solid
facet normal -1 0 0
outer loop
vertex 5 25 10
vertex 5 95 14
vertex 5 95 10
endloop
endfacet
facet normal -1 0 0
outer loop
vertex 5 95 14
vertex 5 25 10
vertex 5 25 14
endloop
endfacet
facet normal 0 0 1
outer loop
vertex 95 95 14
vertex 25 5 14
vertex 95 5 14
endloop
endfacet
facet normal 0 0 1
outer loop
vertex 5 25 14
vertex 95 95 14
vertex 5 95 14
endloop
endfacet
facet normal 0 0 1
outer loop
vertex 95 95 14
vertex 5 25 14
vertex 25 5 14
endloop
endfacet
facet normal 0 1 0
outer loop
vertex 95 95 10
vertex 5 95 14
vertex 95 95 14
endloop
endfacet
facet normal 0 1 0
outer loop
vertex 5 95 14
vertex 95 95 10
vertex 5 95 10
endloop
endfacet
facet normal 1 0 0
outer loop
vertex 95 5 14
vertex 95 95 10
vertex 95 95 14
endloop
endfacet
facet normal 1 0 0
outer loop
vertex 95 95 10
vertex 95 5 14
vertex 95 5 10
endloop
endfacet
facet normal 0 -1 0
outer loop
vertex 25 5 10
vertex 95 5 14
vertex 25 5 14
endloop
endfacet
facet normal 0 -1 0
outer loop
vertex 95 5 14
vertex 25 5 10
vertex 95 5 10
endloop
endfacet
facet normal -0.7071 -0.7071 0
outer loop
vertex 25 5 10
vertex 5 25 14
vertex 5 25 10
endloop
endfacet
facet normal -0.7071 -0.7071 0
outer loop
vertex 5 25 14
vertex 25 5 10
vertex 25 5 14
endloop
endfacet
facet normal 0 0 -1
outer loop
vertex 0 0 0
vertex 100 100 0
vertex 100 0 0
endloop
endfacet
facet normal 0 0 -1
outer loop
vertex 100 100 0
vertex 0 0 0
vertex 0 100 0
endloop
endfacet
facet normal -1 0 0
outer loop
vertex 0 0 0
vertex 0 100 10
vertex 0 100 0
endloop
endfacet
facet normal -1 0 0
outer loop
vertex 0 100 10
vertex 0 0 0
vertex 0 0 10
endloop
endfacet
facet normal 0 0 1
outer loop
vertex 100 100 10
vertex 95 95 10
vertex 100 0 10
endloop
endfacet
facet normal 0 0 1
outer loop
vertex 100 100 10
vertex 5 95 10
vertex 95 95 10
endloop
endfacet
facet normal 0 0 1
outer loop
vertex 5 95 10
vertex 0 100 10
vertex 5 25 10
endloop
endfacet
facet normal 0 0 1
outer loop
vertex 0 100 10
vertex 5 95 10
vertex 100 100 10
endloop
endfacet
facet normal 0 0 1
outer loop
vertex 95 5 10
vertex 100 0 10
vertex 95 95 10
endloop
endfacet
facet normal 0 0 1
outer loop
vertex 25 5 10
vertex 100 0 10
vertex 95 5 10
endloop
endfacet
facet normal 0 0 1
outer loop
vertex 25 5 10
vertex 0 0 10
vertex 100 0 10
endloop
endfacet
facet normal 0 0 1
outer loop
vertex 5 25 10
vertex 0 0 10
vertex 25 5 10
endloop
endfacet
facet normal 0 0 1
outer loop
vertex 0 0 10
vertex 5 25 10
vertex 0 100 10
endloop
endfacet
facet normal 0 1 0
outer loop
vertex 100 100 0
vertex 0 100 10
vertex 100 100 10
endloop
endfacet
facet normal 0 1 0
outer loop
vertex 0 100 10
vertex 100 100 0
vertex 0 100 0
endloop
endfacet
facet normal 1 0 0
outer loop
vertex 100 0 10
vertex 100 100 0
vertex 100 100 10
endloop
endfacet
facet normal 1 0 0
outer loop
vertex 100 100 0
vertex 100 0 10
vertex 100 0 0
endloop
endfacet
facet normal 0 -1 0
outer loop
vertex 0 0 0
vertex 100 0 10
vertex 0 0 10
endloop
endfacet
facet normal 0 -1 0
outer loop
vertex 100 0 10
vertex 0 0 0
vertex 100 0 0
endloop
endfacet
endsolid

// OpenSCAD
// paper?


linear_extrude(10) square([100,100]);
    translate([5,5,9]) 
    difference()
    {

        linear_extrude(5) square([90,90]);
        linear_extrude(6) polygon([[-10,-10],[30,-10],[-10,30],[-10,-10]]);
    }
